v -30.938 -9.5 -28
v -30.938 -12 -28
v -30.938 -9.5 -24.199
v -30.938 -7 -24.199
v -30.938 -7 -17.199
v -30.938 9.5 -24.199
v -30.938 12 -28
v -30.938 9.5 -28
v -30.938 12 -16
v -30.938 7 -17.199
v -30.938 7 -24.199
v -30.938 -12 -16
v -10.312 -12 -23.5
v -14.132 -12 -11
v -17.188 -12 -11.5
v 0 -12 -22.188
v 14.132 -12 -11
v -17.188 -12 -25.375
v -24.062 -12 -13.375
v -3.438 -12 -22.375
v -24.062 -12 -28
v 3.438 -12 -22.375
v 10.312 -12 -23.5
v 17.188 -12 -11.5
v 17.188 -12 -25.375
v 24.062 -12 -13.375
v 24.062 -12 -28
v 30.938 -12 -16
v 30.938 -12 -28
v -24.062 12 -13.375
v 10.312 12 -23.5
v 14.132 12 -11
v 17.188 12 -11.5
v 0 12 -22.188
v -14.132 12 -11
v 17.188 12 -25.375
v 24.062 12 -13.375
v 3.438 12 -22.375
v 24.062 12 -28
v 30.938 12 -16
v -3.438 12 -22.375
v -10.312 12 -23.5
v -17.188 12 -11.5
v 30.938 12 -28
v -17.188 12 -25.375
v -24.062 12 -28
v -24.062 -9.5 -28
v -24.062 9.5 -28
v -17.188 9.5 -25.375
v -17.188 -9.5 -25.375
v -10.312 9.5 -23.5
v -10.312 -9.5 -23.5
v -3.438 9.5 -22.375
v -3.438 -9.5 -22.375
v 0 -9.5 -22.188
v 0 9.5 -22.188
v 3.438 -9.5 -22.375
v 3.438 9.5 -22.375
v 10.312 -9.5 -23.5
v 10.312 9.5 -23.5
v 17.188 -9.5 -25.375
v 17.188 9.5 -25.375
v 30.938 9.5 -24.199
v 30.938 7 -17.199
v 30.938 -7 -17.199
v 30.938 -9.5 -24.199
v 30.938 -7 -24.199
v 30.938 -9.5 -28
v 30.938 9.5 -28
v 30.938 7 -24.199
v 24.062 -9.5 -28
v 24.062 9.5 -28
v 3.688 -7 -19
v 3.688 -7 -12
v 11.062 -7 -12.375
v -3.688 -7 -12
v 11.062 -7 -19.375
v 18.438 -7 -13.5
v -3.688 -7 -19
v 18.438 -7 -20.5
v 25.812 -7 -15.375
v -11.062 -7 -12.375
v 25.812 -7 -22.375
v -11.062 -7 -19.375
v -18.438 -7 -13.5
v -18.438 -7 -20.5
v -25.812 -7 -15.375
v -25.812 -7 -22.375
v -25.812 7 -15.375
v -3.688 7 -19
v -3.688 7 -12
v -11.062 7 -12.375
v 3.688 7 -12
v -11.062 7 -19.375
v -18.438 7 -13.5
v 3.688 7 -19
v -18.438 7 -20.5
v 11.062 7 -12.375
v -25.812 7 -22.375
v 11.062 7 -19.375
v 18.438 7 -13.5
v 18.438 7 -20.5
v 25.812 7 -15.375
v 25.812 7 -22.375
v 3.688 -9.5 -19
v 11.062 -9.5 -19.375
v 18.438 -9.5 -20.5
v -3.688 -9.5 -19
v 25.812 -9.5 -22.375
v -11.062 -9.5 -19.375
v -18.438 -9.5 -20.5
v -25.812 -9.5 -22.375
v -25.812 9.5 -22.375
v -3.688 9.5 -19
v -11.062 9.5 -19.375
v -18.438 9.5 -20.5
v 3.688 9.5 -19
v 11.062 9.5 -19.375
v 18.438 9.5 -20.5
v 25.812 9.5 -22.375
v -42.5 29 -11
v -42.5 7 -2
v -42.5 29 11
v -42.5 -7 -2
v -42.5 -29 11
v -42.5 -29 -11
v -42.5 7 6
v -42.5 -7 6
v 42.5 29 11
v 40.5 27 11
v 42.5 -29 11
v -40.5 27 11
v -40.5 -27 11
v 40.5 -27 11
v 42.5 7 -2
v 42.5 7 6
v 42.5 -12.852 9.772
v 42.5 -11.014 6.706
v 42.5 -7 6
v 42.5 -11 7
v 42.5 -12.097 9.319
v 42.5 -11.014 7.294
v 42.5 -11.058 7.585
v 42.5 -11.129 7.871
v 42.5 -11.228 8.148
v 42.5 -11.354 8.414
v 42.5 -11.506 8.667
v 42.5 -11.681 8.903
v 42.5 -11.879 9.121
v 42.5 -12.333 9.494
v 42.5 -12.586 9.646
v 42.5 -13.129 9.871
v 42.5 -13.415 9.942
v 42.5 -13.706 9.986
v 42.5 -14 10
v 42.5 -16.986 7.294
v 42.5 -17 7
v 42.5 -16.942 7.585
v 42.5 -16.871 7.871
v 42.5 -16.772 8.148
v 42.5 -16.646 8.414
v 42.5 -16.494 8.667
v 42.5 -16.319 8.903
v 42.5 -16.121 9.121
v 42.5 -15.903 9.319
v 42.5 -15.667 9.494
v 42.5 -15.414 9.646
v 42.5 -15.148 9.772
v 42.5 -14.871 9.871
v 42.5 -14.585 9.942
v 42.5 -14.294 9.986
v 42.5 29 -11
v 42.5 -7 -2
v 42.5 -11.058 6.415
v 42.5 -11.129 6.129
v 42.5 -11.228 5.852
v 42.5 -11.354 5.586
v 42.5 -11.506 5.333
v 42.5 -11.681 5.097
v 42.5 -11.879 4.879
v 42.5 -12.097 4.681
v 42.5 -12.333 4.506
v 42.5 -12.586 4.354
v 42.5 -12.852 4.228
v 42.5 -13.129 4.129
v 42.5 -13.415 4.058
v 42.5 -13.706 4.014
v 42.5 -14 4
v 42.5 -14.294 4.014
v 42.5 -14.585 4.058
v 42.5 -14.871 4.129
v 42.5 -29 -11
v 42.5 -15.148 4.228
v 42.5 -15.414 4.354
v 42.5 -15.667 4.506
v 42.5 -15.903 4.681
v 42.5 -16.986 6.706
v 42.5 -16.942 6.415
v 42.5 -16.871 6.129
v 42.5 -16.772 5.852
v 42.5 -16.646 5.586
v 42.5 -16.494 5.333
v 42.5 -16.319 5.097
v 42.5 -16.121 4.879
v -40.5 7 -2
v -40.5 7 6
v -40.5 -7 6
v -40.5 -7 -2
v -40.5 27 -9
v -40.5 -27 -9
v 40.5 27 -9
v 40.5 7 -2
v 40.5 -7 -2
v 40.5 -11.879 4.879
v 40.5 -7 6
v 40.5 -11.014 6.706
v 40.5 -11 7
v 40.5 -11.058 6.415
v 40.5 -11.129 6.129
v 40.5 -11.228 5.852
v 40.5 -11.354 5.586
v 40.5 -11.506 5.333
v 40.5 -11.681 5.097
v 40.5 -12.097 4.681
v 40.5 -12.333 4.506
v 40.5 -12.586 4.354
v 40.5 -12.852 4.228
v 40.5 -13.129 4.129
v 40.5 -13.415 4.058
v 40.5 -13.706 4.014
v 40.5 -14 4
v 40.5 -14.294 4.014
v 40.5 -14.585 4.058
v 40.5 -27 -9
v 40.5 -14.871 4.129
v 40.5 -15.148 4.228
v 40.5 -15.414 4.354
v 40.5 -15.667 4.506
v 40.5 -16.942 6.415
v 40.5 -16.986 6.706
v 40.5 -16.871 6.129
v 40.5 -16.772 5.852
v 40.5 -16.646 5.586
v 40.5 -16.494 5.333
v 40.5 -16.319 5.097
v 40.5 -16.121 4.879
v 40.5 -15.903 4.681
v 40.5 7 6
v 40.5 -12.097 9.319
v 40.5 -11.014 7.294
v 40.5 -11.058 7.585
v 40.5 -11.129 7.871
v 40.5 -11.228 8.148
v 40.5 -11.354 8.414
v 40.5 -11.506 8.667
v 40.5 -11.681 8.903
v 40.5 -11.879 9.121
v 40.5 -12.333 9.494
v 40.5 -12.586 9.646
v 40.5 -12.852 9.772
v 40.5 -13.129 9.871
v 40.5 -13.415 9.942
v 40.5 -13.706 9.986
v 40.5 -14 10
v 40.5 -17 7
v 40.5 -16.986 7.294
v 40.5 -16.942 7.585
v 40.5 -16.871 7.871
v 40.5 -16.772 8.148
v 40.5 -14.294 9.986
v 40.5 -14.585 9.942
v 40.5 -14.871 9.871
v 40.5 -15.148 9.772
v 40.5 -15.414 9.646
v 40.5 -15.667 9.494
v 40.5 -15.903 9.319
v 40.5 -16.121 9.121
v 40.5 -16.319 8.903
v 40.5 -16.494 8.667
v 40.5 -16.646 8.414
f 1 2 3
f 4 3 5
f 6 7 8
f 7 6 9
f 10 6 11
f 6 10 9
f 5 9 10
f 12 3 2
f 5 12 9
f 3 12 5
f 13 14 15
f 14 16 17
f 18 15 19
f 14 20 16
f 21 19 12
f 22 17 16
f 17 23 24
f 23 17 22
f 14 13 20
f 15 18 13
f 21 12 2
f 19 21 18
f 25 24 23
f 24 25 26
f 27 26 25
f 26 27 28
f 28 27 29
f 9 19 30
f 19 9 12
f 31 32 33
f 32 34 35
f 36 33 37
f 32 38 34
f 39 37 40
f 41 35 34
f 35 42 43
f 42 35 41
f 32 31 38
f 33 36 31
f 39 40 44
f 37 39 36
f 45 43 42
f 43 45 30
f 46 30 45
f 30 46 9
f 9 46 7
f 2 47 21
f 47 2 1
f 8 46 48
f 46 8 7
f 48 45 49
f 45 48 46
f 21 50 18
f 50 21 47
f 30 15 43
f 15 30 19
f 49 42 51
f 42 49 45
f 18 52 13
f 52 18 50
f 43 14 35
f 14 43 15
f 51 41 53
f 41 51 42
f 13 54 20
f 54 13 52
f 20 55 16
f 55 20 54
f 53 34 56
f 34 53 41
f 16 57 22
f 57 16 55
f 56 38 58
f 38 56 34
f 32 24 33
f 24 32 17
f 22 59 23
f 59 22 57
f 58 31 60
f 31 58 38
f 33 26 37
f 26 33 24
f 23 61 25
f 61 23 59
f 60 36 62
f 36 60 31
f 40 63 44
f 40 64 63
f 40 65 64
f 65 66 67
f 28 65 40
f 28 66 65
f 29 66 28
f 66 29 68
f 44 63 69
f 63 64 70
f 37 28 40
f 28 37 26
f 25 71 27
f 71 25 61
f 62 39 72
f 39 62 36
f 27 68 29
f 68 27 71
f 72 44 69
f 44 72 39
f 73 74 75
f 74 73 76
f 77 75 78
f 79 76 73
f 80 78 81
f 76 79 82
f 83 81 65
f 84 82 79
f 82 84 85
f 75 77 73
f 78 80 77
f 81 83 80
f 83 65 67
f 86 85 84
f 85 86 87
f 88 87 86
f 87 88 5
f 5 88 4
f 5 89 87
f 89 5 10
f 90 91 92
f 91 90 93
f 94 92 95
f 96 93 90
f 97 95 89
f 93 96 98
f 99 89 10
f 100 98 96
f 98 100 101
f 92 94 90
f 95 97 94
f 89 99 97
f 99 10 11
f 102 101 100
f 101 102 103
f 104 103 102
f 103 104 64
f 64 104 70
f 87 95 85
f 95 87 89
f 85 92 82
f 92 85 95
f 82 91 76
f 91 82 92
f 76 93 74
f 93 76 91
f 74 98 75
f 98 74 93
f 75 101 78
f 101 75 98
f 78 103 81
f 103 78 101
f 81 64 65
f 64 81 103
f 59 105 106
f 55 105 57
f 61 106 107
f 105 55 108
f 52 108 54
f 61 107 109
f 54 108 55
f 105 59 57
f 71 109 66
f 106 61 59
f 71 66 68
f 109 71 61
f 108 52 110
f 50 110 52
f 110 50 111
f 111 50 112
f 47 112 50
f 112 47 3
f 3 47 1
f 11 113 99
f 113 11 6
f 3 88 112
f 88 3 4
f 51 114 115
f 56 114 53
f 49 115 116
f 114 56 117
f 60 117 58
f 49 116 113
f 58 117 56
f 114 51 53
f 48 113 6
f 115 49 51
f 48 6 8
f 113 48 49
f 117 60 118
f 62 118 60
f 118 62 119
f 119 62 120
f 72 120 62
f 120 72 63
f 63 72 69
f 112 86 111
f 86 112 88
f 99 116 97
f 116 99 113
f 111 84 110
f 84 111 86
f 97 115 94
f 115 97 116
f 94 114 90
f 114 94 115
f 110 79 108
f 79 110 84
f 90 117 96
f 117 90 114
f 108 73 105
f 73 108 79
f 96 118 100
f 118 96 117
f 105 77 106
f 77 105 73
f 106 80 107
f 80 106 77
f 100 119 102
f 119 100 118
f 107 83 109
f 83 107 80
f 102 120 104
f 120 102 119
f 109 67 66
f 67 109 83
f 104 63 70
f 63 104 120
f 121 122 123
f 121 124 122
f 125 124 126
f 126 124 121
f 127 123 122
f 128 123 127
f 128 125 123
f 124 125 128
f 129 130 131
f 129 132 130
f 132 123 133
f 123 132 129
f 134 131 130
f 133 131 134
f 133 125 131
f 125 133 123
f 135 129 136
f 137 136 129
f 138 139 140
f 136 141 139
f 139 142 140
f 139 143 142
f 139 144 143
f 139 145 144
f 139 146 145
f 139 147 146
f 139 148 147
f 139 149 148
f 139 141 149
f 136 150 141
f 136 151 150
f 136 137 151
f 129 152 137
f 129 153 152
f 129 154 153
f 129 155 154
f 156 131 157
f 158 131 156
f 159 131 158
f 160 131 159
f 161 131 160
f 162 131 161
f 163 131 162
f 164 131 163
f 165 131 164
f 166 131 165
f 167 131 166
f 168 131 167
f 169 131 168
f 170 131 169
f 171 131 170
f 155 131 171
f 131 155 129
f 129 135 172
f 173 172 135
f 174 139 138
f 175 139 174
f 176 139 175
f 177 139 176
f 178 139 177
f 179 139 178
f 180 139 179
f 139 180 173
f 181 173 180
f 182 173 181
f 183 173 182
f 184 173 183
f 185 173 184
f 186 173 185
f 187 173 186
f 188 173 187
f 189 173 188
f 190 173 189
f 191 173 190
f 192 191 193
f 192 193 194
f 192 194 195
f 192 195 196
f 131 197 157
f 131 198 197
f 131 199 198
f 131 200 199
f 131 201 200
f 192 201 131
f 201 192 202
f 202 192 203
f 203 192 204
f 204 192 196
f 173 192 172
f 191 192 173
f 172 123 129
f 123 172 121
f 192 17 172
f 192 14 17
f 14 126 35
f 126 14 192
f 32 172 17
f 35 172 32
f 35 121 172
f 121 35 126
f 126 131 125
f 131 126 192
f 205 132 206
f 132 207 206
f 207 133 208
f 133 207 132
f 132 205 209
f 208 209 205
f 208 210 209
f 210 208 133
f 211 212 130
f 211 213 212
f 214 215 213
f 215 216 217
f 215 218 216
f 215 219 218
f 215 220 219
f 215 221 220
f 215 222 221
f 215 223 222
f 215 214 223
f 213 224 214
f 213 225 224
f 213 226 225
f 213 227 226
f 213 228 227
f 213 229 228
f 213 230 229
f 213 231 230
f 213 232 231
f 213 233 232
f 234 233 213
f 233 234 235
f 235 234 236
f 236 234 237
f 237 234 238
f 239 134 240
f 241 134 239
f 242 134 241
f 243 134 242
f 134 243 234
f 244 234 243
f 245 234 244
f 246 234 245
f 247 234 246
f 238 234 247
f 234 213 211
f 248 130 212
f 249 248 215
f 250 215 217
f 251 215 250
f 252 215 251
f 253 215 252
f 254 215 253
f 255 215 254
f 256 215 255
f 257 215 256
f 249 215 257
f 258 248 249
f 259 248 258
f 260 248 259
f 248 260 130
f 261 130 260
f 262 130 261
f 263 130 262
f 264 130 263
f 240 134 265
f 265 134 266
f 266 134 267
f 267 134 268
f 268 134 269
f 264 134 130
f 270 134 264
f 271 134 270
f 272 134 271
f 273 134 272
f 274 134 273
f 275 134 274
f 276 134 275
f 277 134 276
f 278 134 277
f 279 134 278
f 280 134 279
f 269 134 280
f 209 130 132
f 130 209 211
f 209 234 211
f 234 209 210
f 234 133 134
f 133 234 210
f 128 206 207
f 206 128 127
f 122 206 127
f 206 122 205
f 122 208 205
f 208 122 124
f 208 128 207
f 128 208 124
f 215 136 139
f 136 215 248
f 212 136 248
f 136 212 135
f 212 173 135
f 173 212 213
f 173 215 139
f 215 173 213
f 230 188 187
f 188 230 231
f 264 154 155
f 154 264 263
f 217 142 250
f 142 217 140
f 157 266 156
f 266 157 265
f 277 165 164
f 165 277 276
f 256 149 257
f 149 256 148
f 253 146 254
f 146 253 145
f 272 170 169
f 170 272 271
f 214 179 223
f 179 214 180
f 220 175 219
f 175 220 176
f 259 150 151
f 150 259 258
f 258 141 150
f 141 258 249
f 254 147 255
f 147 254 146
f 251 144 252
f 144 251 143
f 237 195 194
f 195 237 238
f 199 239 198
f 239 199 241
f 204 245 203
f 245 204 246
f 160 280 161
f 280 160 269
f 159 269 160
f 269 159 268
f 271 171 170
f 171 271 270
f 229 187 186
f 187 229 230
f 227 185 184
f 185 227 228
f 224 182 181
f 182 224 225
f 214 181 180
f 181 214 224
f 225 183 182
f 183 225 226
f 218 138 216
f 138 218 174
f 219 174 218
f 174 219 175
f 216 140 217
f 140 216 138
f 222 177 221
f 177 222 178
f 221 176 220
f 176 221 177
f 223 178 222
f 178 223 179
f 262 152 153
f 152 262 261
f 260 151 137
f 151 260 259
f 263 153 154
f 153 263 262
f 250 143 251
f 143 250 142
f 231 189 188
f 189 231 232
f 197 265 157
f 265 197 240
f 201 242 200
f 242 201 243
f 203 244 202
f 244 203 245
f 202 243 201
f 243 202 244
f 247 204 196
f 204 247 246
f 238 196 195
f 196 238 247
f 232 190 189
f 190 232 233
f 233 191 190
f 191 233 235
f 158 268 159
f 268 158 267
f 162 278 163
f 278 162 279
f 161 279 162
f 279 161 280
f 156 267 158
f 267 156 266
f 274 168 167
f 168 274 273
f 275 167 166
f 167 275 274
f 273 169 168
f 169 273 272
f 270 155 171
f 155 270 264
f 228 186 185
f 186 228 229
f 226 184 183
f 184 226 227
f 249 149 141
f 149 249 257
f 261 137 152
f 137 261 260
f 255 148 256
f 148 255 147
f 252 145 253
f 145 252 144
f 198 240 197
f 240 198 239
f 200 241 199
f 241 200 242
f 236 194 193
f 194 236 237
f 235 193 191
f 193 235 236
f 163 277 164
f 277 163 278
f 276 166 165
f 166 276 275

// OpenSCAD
$fn = 64;

dolzina = 85;
sirina = 58;
visina = 22;

debelina_stene = 2;

usb_sirina = 14;
usb_visina = 8;

krog_r = 3;

sponka_dolzina = 55;
sponka_sirina = 24;
sponka_visina = 12;
ukrivljenost = 6;

lok_sirina = 14;
lok_visina = 8;


module ukrivljen_blok(dolz, sir, vis, padec) {
    koraki = 8;

    for (i = [0 : koraki - 1]) {
        x1 = -dolz / 2 + i * dolz / koraki;
        x2 = -dolz / 2 + (i + 1) * dolz / koraki;

        z1 = -padec * pow(x1 / (dolz / 2), 2);
        z2 = -padec * pow(x2 / (dolz / 2), 2);

        hull() {
            translate([x1, 0, z1])
                cube([dolz / koraki, sir, vis], center = true);

            translate([x2, 0, z2])
                cube([dolz / koraki, sir, vis], center = true);
        }
    }
}


difference() {

    union() {

        cube([dolzina, sirina, visina], center = true);

        translate([0, 0, -visina / 2 - 5])
            difference() {

                ukrivljen_blok(
                    sponka_dolzina,
                    sponka_sirina,
                    sponka_visina,
                    ukrivljenost
                );

                ukrivljen_blok(
                    sponka_dolzina + 4,
                    lok_sirina,
                    lok_visina,
                    ukrivljenost
                );

                translate([0, 0, -7])
                    ukrivljen_blok(
                        sponka_dolzina + 4,
                        lok_sirina + 5,
                        8,
                        ukrivljenost
                    );
            }
    }

    translate([0, 0, debelina_stene])
        cube([
            dolzina - 2 * debelina_stene,
            sirina - 2 * debelina_stene,
            visina
        ], center = true);

    translate([-dolzina / 2, 0, 2])
        cube([8, usb_sirina, usb_visina], center = true);

    translate([dolzina / 2, 0, 2])
        cube([8, usb_sirina, usb_visina], center = true);

    translate([dolzina / 2, -14, 7])
        rotate([0, 90, 0])
            cylinder(h = 8, r = krog_r, center = true);

    for (x = [-25 : 10 : 25]) {
        translate([x, 0, visina / 2])
            cylinder(h = 6, r = 2, center = true);
    }

    for (x = [-32, 32]) {
        for (y = [-20, 20]) {
            translate([x, y, visina / 2])
                cylinder(h = 6, r = 1.6, center = true);
        }
    }
}
